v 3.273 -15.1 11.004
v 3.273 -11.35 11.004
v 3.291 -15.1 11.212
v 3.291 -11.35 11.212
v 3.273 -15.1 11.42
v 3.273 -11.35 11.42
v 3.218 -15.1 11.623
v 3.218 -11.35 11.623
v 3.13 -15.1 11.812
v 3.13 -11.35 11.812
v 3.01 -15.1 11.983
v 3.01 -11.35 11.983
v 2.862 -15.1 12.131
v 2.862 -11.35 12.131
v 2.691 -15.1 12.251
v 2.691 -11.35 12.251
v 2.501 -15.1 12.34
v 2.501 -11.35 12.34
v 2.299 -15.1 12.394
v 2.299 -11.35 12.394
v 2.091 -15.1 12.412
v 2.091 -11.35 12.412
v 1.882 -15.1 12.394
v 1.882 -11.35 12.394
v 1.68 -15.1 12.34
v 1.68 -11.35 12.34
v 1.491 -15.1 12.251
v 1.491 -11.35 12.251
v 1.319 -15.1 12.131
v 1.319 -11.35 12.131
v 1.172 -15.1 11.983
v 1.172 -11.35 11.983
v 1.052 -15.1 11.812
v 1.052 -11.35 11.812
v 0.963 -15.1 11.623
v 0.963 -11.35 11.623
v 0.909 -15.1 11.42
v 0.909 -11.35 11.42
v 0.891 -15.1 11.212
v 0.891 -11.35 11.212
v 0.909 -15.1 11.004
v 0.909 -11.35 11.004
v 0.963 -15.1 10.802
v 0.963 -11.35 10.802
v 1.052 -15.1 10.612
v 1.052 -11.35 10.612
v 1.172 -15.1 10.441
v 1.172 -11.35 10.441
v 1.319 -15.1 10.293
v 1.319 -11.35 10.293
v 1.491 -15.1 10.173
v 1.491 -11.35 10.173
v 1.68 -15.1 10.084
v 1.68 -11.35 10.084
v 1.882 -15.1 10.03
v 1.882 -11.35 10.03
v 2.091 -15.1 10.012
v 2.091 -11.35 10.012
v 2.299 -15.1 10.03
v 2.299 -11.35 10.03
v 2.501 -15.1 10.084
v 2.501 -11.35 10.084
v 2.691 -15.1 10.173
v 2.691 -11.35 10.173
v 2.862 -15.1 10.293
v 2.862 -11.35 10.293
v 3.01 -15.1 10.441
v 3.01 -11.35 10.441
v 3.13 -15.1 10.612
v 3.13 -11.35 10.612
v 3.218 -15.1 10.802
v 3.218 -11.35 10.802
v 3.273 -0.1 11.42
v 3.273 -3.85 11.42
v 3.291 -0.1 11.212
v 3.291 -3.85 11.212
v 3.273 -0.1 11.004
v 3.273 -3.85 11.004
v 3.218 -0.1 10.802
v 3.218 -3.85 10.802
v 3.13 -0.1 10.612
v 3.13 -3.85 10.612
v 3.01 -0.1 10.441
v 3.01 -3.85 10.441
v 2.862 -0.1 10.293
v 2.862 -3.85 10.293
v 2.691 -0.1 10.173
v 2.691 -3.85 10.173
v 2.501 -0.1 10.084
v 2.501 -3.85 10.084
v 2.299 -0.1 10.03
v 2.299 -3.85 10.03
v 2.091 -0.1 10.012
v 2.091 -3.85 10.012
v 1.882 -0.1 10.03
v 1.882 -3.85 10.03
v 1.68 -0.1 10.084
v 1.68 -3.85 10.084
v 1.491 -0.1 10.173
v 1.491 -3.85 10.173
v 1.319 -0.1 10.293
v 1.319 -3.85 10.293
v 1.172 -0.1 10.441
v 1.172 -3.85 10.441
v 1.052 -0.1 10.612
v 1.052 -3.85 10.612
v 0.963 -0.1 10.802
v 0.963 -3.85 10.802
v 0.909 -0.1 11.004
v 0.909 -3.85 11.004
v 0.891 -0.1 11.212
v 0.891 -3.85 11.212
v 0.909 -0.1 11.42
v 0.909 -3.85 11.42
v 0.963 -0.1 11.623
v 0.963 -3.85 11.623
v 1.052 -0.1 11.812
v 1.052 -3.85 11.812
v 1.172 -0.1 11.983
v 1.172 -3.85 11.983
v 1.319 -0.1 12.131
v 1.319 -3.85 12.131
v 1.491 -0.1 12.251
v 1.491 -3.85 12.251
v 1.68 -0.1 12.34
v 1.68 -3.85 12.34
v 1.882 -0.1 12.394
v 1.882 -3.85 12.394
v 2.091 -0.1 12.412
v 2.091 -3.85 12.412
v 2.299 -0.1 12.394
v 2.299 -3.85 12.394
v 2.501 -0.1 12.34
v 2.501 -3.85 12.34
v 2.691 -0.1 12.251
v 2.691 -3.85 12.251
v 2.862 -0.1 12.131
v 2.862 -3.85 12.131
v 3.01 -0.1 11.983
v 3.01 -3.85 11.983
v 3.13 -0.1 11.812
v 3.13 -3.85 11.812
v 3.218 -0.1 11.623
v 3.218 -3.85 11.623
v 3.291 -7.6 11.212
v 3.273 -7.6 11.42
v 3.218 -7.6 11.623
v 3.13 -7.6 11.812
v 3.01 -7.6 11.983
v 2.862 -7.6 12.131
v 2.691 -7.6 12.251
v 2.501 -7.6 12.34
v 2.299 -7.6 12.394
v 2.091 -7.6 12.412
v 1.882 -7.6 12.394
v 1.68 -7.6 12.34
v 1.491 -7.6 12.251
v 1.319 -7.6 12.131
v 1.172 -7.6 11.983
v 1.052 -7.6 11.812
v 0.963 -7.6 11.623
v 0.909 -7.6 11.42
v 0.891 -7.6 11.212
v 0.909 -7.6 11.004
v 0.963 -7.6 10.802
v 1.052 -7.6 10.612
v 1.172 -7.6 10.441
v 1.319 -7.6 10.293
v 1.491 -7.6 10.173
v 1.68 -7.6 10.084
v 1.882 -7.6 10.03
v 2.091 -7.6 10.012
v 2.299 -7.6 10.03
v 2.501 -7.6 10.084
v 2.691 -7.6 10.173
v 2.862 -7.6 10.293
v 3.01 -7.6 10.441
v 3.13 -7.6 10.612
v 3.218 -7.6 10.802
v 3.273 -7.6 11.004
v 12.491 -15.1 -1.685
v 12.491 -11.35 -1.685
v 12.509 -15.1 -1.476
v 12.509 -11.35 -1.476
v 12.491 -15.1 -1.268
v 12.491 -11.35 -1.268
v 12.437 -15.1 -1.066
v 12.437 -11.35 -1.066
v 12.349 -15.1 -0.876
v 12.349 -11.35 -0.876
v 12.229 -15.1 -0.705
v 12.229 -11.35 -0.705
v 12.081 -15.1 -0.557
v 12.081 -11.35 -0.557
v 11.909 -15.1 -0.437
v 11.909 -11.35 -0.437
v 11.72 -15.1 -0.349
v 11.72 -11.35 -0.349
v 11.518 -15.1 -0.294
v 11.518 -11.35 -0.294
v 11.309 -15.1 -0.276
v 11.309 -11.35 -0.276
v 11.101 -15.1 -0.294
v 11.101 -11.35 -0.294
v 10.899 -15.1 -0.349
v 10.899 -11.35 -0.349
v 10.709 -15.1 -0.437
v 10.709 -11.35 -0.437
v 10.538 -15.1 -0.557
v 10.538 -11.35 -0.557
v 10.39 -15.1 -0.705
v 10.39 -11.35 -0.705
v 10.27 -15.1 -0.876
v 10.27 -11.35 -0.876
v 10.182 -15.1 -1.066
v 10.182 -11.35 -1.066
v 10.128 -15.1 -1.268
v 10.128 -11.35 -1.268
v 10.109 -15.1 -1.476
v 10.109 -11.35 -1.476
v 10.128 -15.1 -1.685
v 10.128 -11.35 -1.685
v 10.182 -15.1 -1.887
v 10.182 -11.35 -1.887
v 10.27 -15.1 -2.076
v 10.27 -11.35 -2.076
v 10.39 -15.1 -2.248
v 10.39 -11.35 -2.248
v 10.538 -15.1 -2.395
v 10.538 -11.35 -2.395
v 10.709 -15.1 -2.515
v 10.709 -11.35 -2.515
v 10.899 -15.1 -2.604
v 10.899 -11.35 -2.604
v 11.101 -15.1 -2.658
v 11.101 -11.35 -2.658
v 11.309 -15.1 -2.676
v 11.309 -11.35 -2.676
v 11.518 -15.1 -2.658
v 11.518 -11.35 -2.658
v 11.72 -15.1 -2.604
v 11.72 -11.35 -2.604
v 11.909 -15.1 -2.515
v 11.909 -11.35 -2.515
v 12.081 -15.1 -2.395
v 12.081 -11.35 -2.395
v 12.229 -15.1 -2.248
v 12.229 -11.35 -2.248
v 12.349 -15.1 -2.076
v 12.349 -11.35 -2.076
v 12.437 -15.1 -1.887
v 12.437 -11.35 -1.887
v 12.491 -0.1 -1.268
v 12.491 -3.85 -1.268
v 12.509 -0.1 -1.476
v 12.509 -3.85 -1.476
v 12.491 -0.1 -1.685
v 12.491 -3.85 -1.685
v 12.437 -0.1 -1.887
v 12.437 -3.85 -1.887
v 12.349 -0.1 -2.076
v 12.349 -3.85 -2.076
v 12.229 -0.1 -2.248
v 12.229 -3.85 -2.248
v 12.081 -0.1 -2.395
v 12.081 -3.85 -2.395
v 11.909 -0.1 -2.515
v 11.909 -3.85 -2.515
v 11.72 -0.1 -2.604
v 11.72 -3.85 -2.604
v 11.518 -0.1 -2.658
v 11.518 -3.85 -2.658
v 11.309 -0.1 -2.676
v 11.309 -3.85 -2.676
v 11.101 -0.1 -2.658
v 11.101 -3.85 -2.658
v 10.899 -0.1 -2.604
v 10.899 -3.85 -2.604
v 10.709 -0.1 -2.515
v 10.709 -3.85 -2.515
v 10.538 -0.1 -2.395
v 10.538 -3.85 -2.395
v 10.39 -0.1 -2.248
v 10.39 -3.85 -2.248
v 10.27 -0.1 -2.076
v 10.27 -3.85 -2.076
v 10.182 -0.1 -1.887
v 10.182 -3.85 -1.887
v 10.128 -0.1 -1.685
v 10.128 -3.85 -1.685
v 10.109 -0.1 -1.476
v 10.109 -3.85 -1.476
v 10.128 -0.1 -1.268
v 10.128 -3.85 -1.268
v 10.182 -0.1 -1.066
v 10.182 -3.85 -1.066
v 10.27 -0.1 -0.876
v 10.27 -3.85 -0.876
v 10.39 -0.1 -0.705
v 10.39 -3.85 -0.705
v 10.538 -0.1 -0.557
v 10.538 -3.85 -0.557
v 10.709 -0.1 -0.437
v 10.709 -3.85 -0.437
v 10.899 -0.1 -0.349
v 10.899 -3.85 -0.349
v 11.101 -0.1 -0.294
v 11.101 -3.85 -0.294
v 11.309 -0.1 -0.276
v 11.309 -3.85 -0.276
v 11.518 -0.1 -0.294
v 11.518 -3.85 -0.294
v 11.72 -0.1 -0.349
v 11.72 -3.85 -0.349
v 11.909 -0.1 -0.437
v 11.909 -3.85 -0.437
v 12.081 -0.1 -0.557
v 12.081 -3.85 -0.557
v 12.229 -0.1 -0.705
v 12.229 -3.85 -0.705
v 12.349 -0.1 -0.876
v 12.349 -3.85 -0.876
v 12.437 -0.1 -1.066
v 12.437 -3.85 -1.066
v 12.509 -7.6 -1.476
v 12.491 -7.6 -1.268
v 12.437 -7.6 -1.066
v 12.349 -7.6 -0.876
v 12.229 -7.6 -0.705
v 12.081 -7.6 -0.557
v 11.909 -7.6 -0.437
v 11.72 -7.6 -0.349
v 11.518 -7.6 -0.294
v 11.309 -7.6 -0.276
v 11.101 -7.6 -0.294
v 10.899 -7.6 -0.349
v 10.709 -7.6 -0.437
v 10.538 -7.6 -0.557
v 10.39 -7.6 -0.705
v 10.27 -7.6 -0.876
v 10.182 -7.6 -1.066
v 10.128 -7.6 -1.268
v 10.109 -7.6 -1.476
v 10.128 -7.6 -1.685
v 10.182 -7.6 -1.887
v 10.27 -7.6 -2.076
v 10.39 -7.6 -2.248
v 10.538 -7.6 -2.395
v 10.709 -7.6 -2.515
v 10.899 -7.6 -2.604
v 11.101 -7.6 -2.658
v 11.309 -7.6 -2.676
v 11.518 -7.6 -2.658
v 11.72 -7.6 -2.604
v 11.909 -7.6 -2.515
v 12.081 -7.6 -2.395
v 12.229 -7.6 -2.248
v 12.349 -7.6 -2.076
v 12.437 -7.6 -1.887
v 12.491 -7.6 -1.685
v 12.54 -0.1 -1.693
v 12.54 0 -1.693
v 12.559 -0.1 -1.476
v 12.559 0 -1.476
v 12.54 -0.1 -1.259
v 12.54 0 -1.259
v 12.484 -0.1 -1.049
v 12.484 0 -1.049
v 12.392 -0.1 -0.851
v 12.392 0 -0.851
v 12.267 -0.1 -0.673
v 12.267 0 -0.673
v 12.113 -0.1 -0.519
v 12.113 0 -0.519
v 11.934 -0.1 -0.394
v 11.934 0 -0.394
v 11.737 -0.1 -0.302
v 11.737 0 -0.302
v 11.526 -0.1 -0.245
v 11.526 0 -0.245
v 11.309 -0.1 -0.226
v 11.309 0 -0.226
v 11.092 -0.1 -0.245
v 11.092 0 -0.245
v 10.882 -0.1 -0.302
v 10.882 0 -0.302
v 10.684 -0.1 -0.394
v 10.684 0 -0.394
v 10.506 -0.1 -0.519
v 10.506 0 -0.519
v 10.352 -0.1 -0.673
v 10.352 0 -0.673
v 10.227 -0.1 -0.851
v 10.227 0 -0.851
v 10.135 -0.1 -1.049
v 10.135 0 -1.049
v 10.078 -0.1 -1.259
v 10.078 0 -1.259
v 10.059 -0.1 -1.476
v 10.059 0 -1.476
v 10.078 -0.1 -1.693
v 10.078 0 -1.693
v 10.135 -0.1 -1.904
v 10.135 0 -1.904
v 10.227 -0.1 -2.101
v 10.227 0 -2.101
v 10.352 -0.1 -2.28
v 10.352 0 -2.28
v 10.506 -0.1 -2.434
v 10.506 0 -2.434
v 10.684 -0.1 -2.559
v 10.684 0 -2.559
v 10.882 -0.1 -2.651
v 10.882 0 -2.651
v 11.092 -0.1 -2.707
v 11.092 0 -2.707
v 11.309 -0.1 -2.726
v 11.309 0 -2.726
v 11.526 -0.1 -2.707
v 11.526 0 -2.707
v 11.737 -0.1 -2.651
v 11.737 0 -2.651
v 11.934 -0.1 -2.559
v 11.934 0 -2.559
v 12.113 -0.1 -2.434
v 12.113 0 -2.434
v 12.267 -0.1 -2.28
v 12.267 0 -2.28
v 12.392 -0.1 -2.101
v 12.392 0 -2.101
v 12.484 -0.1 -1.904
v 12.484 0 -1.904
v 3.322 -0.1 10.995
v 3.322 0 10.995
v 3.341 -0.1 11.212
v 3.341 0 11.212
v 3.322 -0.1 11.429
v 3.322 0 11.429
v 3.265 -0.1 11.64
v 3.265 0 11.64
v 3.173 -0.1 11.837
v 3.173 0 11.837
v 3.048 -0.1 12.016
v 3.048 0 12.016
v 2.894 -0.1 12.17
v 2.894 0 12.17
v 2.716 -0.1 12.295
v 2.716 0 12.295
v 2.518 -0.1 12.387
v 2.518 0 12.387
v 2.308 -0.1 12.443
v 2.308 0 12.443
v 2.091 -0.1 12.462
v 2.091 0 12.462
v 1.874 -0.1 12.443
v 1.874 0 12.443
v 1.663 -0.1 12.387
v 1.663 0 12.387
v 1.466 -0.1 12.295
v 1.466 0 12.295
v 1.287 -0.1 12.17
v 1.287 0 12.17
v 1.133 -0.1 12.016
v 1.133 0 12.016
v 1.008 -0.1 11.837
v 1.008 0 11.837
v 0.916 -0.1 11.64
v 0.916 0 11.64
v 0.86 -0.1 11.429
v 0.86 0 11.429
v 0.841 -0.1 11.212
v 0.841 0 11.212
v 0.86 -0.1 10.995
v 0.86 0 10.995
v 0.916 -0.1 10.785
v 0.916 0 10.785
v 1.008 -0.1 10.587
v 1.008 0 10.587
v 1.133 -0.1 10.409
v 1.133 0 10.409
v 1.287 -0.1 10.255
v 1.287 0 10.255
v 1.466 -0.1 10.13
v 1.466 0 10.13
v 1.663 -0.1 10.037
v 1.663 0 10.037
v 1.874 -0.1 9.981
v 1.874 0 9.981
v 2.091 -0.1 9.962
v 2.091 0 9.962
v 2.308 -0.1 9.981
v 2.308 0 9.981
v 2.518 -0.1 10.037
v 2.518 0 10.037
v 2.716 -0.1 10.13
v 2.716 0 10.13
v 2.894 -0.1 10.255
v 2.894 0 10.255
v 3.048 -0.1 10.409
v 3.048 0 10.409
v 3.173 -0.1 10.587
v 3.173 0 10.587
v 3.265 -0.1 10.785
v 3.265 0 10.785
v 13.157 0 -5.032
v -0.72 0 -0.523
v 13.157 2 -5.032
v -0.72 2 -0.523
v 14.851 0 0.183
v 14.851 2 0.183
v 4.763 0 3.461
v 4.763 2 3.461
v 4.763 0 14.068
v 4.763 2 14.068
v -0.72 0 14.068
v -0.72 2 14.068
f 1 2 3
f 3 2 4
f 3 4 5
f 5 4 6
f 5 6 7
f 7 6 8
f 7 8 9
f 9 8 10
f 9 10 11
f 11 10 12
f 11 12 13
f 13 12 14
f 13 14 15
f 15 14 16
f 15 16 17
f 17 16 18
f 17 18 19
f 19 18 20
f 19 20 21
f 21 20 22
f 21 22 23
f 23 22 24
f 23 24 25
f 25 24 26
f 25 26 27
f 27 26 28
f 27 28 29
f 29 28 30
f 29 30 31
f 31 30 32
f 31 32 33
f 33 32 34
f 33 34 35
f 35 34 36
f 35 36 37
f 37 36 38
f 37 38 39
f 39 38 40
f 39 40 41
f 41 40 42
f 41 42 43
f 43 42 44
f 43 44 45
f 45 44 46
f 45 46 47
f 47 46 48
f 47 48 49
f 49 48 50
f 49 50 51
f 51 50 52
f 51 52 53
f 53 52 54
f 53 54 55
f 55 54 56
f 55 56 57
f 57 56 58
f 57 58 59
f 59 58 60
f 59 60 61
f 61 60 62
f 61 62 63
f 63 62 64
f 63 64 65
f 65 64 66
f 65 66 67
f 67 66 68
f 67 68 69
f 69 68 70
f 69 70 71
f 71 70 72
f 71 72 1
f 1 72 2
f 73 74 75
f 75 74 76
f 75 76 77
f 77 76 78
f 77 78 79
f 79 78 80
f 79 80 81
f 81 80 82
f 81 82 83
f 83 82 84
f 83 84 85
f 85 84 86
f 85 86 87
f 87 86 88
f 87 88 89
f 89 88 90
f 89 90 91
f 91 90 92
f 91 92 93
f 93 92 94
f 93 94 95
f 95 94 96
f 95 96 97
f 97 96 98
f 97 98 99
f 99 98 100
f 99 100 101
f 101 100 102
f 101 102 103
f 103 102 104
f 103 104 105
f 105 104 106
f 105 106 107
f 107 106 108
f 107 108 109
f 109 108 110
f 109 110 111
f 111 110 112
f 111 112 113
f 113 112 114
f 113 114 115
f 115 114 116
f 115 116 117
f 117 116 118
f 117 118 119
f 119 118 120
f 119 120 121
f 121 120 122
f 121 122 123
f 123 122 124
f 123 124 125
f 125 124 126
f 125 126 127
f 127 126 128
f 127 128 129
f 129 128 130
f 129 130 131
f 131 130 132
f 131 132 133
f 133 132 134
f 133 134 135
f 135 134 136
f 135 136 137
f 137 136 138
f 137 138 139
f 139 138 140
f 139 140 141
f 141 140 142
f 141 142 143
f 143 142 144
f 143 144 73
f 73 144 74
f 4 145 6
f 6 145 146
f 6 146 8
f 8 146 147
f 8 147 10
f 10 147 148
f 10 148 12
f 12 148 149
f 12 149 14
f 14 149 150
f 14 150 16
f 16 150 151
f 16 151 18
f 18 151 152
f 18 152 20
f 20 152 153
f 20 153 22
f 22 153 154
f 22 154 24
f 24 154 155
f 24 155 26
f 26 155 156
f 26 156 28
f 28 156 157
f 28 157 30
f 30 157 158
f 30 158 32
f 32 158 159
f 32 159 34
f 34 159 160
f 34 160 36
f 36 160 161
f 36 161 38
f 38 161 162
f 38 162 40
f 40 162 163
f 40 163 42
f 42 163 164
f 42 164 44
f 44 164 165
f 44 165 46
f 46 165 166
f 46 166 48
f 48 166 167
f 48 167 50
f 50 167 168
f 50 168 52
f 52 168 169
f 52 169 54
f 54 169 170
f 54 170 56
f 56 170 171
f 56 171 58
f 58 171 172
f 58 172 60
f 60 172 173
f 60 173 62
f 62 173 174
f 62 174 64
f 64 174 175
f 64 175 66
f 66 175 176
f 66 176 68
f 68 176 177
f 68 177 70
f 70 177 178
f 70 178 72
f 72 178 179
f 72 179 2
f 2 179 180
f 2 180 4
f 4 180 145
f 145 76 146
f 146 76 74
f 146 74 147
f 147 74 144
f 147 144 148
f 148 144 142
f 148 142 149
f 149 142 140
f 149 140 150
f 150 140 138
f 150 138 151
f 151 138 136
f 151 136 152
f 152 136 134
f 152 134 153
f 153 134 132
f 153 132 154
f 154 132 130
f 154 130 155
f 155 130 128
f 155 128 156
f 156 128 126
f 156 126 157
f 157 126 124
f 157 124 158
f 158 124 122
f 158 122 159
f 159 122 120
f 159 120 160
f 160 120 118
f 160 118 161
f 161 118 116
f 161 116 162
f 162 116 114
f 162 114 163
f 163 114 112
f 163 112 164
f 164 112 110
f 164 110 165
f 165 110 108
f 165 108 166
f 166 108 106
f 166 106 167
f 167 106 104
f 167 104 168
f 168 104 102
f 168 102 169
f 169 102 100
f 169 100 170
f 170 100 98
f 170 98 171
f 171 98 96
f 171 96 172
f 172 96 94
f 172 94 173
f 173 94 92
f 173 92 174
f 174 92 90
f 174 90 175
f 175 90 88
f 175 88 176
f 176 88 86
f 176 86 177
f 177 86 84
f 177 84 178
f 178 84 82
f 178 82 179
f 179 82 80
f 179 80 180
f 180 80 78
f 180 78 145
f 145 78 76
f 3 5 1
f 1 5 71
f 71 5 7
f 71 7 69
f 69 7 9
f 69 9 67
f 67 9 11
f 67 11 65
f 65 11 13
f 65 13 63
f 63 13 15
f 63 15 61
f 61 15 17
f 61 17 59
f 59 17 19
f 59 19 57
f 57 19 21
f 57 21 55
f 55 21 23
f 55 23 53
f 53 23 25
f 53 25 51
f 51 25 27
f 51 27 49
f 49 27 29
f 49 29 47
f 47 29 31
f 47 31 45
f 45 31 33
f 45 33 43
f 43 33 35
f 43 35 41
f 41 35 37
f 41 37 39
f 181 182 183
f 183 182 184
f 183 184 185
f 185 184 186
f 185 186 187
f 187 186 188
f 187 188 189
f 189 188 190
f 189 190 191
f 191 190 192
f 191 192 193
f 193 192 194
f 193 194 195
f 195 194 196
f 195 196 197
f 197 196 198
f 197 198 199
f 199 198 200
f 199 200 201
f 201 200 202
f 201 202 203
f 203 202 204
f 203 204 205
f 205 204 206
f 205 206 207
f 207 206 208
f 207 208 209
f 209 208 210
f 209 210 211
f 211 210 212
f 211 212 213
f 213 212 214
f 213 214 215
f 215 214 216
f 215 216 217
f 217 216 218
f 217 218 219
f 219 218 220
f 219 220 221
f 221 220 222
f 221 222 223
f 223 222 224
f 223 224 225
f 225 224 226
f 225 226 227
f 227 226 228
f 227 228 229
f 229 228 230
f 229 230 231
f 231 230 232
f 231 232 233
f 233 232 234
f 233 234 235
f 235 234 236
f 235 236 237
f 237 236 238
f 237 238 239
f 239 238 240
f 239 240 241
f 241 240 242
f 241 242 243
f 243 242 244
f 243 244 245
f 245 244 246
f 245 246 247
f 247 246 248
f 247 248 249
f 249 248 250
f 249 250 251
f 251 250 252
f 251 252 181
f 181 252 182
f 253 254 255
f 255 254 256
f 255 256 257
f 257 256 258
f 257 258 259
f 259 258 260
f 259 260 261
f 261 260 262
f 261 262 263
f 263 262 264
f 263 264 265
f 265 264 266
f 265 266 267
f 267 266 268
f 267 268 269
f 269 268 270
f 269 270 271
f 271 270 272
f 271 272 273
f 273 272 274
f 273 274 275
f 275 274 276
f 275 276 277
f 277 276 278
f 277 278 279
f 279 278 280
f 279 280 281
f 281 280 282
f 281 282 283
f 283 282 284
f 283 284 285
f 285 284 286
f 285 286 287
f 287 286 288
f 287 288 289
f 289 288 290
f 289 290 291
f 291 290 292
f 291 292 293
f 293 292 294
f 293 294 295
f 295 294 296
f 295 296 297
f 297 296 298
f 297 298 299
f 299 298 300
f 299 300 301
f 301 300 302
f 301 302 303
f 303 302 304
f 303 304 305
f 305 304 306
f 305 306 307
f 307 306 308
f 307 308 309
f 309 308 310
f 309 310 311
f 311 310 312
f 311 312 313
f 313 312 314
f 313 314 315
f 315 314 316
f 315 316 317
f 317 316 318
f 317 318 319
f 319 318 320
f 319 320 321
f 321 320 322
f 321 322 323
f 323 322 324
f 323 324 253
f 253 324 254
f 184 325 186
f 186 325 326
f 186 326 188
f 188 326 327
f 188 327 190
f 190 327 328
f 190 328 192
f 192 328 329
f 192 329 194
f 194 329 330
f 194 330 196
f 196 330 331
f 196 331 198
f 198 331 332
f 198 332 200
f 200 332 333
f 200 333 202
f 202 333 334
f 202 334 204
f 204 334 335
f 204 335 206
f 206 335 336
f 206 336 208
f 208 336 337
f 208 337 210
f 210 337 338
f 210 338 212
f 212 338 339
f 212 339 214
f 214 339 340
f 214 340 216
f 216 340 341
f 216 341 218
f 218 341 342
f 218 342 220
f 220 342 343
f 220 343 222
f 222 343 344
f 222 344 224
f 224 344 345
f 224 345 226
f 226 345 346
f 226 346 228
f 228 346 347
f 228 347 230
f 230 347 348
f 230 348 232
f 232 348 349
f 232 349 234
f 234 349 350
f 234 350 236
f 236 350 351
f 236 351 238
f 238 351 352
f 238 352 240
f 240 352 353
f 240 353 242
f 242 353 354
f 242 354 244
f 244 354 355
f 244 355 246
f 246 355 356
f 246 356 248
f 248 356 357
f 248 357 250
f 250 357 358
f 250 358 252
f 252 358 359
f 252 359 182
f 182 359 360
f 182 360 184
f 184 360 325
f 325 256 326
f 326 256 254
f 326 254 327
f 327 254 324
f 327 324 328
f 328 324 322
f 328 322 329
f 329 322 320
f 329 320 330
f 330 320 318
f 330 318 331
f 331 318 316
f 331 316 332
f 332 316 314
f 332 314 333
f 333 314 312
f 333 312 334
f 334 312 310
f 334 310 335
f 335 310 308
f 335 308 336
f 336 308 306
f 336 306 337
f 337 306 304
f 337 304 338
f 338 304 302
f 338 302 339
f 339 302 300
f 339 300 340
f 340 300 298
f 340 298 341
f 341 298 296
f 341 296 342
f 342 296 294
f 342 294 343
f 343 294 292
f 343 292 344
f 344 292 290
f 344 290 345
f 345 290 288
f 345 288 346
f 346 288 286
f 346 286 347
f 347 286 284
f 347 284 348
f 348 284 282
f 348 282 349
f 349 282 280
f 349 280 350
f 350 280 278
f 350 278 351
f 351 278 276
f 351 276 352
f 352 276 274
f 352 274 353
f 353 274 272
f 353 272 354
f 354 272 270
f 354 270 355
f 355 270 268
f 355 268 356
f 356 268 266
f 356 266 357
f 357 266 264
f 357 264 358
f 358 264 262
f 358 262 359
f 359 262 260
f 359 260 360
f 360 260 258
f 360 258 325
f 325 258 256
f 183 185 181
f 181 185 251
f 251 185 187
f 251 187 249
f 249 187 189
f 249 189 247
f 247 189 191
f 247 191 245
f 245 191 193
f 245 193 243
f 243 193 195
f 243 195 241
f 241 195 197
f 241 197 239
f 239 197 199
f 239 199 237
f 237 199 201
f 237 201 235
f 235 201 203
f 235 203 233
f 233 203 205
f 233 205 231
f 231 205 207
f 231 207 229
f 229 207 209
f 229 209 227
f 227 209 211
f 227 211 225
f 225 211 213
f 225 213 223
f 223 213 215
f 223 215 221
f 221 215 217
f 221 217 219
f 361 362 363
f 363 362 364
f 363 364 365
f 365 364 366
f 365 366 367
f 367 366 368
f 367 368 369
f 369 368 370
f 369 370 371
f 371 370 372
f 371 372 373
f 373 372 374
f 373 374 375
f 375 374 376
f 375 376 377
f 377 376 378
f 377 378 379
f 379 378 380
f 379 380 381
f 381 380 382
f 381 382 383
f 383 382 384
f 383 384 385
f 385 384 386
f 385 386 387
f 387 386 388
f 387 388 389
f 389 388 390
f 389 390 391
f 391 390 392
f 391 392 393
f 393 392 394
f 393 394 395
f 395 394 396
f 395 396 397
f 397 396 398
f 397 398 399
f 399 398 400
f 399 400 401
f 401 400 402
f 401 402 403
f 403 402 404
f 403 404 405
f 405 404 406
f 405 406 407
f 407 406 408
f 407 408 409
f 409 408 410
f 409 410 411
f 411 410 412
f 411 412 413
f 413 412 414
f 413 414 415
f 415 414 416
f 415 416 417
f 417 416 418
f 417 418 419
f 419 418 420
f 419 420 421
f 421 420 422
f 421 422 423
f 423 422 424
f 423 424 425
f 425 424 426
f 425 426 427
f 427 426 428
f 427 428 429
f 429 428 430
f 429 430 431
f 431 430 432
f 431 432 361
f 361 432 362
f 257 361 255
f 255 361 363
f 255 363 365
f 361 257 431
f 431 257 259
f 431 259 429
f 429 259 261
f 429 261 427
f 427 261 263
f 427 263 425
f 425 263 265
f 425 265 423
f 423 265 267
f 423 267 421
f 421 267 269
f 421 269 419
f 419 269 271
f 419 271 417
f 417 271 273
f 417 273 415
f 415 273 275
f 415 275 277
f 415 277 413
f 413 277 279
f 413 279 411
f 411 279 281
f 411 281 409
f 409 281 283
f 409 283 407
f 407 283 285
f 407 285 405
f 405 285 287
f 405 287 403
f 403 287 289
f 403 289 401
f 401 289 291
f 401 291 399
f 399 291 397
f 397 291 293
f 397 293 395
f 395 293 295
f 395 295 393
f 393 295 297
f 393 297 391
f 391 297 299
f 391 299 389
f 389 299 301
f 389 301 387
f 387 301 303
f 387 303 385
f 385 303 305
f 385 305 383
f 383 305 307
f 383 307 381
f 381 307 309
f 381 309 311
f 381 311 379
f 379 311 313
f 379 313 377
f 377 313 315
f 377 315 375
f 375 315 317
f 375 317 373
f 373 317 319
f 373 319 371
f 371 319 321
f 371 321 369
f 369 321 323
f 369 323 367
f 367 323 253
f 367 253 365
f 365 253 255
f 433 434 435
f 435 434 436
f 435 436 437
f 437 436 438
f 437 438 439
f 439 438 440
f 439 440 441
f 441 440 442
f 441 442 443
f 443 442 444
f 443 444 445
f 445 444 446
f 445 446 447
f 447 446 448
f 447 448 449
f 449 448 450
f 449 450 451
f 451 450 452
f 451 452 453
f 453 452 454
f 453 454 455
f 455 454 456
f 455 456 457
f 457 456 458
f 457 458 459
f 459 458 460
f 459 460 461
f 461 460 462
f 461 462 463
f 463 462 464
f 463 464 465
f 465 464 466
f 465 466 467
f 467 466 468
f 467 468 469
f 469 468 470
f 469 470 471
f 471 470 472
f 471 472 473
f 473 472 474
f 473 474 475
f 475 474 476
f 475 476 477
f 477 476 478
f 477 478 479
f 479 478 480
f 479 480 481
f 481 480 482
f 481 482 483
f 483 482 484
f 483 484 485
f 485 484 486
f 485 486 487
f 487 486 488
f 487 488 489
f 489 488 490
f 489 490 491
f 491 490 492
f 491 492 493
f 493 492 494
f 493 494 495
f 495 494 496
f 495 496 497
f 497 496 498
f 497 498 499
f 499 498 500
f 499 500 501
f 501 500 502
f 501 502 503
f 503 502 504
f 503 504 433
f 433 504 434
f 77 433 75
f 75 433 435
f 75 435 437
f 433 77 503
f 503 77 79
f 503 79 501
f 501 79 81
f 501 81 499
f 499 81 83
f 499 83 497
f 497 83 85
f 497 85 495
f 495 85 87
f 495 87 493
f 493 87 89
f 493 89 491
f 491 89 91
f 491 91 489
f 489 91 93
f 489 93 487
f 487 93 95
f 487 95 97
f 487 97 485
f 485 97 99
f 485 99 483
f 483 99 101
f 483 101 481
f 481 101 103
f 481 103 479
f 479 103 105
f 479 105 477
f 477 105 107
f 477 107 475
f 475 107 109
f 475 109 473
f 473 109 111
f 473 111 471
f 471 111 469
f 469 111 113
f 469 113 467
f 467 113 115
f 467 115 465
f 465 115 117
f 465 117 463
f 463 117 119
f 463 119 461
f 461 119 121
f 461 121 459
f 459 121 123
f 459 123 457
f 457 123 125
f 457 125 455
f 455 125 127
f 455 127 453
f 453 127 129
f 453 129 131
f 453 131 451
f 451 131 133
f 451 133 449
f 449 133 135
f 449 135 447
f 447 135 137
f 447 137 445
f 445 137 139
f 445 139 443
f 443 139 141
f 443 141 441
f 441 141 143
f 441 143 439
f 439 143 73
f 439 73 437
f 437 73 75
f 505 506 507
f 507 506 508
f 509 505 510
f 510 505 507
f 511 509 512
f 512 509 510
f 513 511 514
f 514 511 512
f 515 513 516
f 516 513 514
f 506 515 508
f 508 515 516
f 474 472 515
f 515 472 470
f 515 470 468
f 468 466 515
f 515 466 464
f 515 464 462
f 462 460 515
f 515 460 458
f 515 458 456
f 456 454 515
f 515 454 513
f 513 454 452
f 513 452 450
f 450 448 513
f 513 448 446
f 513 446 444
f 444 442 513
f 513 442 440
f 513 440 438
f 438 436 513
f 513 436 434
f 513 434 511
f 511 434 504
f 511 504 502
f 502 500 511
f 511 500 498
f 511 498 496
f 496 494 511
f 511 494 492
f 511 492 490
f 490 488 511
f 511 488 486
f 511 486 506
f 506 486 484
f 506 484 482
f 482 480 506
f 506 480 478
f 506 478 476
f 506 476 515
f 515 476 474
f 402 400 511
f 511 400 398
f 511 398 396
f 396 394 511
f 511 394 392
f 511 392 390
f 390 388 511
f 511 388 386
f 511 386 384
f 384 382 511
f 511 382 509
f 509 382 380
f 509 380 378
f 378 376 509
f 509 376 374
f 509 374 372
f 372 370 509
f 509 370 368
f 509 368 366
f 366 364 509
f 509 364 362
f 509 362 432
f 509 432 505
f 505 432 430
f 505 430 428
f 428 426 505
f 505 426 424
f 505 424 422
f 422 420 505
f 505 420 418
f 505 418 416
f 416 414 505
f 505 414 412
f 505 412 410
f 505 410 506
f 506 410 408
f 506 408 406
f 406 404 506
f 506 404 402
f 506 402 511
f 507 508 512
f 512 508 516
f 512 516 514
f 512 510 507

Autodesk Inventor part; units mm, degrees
ref_plane "YZ Plane" through (0, 0, 0) normal (1, 0, 0) x (0, 1, 0)
ref_plane "XZ Plane" through (0, 0, 0) normal (0, 1, 0) x (-1, 0, 0)
ref_plane "XY Plane" through (0, 0, 0) normal (0, 0, 1) x (1, 0, 0)
sketch "草图1" plane through (0, 0, 0) normal (0, 1, 0) x (-1, 0, 0)
  circle A0 centre (-2.0908, 11.2121) radius 1.25
  line L0 (-5.7974, 4.2121) -> (1.6092, -1.1691) construction
  circle A1 centre (-11.3094, -1.4762) radius 1.25
  line L1 (0.7195, 14.068) -> (0.7195, -0.5227)
  line L2 (-4.7634, 3.4608) -> (-4.7634, 14.068)
  line L3 (-4.7634, 14.068) -> (0.7195, 14.068)
  line L4 (-13.1571, -5.0315) -> (0.7195, -0.5227)
  line L5 (-4.7634, 3.4608) -> (-14.8514, 0.183)
  line L6 (-14.8514, 0.183) -> (-13.1571, -5.0315)
  dimension "d12" = 2.5
extrude "拉伸1" add sketch "草图1" along normal blind 2
sketch "草图2" plane through (0, 2, 0) normal (0, 1, 0) x (1, 0, 0)
  circle A0 centre (11.3094, 1.4762) radius 1.25 projected
  circle A1 centre (2.0908, -11.2121) radius 1.25 projected
extrude "拉伸2" add sketch "草图2" against normal blind 2.1
sketch "草图3" plane through (11.3094, -0.1, -1.4762) normal (0, -1, 0) x (1, 0, 0)
  circle A0 centre (-9.2186, 12.6883) radius 1.25 projected
  circle A1 centre (0, 0) radius 1.25 projected
  circle A2 centre (-9.2186, 12.6883) radius 1.2
  circle A3 centre (0, 0) radius 1.2
  point P0 (-11.3094, 1.4762)
  dimension "d13" = 2.4
  dimension "d14" = 2.4
extrude "拉伸3" add sketch "草图3" along normal blind 15 contours A2 | A3
properties part number "鸦片"
